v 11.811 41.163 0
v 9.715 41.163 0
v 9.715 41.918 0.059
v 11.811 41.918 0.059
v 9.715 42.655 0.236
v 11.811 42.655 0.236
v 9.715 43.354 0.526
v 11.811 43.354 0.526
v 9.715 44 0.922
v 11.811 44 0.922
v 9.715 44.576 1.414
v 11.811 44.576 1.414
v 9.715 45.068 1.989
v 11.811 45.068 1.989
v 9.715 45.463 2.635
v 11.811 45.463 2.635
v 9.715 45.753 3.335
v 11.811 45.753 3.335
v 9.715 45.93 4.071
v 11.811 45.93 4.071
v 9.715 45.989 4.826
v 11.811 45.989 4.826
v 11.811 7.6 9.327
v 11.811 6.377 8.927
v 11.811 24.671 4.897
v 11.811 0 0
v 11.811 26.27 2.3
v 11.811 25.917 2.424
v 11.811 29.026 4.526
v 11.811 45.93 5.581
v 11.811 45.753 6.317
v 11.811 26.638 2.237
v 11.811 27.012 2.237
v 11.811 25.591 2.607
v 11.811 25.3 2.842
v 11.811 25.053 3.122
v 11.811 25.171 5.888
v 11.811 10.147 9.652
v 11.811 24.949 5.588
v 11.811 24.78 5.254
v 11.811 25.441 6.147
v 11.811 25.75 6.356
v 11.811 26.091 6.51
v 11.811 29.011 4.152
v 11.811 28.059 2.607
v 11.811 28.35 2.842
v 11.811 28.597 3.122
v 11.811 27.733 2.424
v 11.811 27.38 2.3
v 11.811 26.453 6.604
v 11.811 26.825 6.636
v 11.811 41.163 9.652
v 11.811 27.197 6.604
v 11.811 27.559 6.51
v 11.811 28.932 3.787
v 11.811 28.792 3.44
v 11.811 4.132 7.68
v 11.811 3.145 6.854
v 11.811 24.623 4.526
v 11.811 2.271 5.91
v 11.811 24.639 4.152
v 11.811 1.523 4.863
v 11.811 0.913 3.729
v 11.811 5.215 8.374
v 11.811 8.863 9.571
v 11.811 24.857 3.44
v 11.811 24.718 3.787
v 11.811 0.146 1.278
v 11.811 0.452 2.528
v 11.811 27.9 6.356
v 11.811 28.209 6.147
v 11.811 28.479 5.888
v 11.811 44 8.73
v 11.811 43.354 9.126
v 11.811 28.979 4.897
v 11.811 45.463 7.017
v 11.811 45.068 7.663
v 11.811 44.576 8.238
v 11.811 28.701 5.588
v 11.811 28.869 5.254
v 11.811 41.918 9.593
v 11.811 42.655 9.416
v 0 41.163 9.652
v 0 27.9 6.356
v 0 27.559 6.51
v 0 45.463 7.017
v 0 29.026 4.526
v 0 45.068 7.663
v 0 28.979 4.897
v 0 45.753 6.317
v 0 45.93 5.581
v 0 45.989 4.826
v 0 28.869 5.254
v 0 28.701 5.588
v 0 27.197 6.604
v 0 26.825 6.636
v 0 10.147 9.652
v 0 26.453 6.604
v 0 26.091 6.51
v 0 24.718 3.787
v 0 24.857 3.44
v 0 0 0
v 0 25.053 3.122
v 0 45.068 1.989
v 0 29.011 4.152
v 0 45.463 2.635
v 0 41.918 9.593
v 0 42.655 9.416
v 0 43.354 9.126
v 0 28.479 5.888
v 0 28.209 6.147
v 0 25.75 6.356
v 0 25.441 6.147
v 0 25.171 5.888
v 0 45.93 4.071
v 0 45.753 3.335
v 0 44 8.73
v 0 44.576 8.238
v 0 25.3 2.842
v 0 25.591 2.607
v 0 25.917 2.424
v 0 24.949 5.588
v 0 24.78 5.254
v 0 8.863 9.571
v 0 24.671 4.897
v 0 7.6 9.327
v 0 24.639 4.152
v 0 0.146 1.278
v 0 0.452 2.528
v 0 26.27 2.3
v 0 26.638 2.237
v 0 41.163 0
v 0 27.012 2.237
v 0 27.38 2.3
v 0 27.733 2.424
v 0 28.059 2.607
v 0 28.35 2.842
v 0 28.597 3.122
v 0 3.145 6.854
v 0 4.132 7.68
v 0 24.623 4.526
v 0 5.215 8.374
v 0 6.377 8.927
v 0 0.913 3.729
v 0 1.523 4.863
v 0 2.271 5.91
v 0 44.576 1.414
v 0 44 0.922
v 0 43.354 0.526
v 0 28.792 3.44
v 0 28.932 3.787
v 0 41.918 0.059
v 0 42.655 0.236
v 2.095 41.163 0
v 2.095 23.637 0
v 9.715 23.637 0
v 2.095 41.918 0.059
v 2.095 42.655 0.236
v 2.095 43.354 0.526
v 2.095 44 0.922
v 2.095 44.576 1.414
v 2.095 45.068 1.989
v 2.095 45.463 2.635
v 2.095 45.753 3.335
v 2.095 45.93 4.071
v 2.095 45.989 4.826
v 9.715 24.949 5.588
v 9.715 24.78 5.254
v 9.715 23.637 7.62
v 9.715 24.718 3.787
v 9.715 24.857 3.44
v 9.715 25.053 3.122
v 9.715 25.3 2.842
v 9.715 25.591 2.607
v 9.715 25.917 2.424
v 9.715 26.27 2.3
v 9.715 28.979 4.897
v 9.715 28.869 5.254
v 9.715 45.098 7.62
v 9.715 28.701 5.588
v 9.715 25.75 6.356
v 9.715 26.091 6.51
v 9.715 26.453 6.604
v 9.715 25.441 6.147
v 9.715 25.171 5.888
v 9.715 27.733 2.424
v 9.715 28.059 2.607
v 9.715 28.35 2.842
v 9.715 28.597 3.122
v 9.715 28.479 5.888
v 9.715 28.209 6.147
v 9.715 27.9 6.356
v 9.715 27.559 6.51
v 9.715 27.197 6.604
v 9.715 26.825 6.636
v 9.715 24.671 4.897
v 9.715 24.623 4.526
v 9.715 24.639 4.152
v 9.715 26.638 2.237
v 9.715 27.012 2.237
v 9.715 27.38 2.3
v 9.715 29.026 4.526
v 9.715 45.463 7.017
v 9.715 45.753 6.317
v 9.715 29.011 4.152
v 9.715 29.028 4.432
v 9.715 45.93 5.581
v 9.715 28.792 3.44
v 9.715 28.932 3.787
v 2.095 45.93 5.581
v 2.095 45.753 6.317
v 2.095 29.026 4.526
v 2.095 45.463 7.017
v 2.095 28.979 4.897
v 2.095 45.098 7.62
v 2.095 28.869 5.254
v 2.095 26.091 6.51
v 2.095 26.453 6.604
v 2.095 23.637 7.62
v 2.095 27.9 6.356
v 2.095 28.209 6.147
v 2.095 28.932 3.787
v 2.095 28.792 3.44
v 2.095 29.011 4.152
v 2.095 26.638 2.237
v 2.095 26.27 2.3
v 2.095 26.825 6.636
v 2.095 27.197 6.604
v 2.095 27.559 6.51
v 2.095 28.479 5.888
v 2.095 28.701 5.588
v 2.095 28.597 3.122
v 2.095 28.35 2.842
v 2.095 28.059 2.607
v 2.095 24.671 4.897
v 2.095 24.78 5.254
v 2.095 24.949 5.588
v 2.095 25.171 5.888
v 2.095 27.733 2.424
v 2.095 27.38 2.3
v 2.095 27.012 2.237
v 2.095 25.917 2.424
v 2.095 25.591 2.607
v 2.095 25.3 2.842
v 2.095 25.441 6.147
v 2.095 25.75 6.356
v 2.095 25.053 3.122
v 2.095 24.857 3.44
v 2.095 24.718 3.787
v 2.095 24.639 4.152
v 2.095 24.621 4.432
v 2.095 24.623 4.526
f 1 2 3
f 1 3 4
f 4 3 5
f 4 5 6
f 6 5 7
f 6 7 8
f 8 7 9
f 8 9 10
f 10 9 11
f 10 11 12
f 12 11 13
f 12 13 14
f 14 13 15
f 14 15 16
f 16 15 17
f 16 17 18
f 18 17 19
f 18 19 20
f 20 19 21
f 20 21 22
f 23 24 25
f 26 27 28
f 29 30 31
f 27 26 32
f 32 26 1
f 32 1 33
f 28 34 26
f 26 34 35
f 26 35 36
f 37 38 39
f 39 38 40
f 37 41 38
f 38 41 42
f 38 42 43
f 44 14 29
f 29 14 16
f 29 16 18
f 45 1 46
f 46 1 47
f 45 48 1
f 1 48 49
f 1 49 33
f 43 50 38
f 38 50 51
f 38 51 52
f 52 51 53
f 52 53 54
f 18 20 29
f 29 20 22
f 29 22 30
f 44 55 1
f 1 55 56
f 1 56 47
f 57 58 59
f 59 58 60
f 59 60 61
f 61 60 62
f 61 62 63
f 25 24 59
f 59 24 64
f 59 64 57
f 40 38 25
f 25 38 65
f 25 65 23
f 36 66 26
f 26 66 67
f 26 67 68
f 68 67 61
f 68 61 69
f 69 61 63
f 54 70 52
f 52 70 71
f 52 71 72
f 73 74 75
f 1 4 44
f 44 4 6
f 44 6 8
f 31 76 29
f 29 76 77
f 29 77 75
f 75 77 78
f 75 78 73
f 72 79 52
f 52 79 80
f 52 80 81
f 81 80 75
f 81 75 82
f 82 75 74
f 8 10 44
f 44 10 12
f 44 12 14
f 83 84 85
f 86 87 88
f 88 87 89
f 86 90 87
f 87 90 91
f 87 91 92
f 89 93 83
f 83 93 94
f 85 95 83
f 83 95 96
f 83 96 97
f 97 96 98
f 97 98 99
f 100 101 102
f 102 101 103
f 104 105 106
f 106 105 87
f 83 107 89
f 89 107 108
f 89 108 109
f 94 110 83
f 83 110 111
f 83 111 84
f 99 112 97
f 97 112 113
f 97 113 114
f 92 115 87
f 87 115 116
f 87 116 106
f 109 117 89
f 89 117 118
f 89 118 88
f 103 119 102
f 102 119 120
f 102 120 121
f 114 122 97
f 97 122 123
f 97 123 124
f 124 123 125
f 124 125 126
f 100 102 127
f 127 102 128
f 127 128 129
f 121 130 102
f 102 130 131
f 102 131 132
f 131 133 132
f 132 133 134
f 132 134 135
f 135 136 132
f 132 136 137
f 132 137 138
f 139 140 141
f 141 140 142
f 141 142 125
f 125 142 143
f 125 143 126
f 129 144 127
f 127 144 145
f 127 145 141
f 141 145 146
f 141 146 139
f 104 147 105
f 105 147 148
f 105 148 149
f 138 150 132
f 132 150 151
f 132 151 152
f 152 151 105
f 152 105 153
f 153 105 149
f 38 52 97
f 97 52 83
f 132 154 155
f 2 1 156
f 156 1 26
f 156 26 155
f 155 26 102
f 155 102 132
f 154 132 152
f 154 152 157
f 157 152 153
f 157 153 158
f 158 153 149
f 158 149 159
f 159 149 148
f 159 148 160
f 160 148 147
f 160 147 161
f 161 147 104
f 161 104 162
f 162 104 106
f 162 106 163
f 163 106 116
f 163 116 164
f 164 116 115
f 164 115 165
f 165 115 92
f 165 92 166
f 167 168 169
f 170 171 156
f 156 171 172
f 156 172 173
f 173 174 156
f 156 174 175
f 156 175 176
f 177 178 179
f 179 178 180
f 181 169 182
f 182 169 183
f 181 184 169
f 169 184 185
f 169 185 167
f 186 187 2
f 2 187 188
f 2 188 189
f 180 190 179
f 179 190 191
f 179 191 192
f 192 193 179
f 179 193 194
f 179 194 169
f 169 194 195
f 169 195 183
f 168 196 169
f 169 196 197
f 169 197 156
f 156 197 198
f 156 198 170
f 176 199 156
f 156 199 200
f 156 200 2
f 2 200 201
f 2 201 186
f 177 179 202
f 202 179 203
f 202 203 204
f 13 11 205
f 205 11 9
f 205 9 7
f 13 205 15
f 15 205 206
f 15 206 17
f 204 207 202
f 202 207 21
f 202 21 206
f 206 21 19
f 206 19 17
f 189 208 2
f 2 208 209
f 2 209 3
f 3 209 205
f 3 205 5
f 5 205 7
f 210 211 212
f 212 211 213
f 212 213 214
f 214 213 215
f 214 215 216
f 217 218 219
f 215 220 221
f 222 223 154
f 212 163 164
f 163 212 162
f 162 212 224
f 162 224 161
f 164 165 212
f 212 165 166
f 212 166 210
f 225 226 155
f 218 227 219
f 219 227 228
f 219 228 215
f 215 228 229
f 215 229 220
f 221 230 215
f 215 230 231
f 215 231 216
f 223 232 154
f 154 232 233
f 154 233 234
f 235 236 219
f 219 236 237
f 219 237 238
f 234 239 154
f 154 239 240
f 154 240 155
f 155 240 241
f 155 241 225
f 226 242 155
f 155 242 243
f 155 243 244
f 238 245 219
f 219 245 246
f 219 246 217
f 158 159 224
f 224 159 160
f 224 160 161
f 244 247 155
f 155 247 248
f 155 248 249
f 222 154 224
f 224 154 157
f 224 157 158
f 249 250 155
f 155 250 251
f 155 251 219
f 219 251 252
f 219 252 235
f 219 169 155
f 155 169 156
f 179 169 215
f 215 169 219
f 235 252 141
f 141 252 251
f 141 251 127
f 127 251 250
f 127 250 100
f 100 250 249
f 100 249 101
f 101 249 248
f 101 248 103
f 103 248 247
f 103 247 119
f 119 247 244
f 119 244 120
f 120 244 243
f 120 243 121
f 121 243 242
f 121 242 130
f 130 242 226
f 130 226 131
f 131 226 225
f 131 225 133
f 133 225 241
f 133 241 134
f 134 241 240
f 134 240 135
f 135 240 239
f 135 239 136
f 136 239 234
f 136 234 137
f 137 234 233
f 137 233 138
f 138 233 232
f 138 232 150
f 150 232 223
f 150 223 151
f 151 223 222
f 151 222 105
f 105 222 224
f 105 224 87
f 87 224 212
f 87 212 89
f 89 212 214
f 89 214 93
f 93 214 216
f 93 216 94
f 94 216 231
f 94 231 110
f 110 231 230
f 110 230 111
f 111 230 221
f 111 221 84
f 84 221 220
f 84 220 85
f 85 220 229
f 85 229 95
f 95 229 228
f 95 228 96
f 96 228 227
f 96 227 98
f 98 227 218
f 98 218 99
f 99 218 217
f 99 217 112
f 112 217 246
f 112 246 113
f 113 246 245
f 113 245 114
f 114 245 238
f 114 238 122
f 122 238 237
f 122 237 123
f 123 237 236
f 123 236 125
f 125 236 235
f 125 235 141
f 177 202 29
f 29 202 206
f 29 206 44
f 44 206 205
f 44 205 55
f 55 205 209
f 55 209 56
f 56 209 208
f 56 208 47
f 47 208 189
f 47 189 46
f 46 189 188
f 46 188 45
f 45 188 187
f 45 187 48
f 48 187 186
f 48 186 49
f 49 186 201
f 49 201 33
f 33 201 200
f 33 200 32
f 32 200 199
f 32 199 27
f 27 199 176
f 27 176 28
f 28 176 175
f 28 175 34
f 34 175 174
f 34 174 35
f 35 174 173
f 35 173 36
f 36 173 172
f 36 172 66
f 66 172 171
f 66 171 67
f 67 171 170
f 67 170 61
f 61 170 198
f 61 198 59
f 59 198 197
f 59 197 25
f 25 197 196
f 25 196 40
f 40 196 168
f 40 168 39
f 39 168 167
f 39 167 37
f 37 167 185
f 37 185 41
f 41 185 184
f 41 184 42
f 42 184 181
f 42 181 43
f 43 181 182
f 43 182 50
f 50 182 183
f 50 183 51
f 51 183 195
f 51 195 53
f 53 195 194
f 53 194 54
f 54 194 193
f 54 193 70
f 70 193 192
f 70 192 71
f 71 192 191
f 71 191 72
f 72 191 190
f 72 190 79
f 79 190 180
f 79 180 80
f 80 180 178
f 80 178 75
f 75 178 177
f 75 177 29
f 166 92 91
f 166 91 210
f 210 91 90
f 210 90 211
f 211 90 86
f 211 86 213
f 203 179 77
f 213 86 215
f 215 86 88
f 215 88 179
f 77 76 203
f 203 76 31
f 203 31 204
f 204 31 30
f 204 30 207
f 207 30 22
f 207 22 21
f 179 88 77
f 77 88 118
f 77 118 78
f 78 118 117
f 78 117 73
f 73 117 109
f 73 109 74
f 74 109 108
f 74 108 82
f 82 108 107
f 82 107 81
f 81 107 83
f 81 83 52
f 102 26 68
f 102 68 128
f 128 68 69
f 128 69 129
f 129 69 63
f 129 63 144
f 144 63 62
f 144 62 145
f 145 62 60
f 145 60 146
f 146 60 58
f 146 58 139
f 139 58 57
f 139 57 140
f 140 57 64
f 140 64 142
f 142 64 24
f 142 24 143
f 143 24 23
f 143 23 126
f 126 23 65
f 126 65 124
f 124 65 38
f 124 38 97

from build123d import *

# Parameters (mm, degrees)
SKETCH1_W               = 11.811
SKETCH1_H               = 45.98924
BOSS_EXTRUDE1_DEPTH     = 9.652
FILLET5_R               = 4.826
SKETCH2_W               = 7.62
SKETCH2_H               = 22.352
CUT_EXTRUDE1_DEPTH      = 7.62
CUT_EXTRUDE2_DEPTH      = 49.452771033
CUT_EXTRUDE2_DEPTH_BACK = 49.452771033
SKETCH3_R               = 2.20345
FILLET4_R               = 4.826
FILLET6_R               = 10.16


with BuildPart() as part:
    # Sketch1 → Boss-Extrude1 (new body)
    with BuildSketch(Plane.XY):
        with Locations((5.9055, 22.99462)):
            Rectangle(SKETCH1_W, SKETCH1_H)
    extrude(amount=BOSS_EXTRUDE1_DEPTH)

    # Fillet5
    fillet5_edges = [part.edges().sort_by_distance(p)[0] for p in [
        (5.9055, 45.98924, 0),
    ]]
    fillet(fillet5_edges, radius=FILLET5_R)

    # Sketch2 → Cut-Extrude1 (cut)
    with BuildSketch(Plane(origin=(0, 0, 0), x_dir=(-1, 0, 0), z_dir=(0, 0, -1))):
        with Locations((-5.9055, 34.81324)):
            Rectangle(SKETCH2_W, SKETCH2_H)
    extrude(amount=-CUT_EXTRUDE1_DEPTH, mode=Mode.SUBTRACT)

    # Sketch3 → Cut-Extrude2 (cut, two sides: drawn at the far end of the back side and taken through both)
    with BuildSketch(Plane.ZY.offset(-CUT_EXTRUDE2_DEPTH_BACK)):
        with Locations((4.4323, 26.82494)):
            Circle(SKETCH3_R)
    extrude(amount=CUT_EXTRUDE2_DEPTH + CUT_EXTRUDE2_DEPTH_BACK, mode=Mode.SUBTRACT)

    # Fillet4
    # the kernel refuses this fillet: 4.826 mm, written as the material it takes off along each edge
    with BuildSketch(Plane(origin=(23.876, 45.98924, 9.652), x_dir=(0, 0, -1), z_dir=(-1, 0, 0))) as fillet4_piece_1:
        with BuildLine():
            CenterArc((FILLET4_R, FILLET4_R), FILLET4_R, 180, 90)
            Line((0, FILLET4_R), (0, 0))
            Line((0, 0), (FILLET4_R, 0))
        make_face()
    extrude(amount=35.941, mode=Mode.SUBTRACT)

    # Fillet6
    # the kernel refuses this fillet: 10.16 mm, written as the material it takes off along each edge
    with BuildSketch(Plane(origin=(-25.368230131, 0, 9.652), x_dir=(0, 1, 0), z_dir=(1, 0, 0))) as fillet6_piece_1:
        with BuildLine():
            CenterArc((10.147292053, -10.16), FILLET6_R, 90, 87.134016017)
            Line((0, -9.652), (-0.202945841, -9.64184))
            ThreePointArc((-0.202945841, -9.64184), (-0.2032, -4.826), (-0.2032, 0))
            Line((-0.2032, 0), (0, 0.2032))
            Line((0, 0.2032), (10.147292053, 0.2032))
            Line((10.147292053, 0.2032), (10.147292053, 0))
        make_face()
    extrude(amount=62.547460263, mode=Mode.SUBTRACT)


solid = part.part
